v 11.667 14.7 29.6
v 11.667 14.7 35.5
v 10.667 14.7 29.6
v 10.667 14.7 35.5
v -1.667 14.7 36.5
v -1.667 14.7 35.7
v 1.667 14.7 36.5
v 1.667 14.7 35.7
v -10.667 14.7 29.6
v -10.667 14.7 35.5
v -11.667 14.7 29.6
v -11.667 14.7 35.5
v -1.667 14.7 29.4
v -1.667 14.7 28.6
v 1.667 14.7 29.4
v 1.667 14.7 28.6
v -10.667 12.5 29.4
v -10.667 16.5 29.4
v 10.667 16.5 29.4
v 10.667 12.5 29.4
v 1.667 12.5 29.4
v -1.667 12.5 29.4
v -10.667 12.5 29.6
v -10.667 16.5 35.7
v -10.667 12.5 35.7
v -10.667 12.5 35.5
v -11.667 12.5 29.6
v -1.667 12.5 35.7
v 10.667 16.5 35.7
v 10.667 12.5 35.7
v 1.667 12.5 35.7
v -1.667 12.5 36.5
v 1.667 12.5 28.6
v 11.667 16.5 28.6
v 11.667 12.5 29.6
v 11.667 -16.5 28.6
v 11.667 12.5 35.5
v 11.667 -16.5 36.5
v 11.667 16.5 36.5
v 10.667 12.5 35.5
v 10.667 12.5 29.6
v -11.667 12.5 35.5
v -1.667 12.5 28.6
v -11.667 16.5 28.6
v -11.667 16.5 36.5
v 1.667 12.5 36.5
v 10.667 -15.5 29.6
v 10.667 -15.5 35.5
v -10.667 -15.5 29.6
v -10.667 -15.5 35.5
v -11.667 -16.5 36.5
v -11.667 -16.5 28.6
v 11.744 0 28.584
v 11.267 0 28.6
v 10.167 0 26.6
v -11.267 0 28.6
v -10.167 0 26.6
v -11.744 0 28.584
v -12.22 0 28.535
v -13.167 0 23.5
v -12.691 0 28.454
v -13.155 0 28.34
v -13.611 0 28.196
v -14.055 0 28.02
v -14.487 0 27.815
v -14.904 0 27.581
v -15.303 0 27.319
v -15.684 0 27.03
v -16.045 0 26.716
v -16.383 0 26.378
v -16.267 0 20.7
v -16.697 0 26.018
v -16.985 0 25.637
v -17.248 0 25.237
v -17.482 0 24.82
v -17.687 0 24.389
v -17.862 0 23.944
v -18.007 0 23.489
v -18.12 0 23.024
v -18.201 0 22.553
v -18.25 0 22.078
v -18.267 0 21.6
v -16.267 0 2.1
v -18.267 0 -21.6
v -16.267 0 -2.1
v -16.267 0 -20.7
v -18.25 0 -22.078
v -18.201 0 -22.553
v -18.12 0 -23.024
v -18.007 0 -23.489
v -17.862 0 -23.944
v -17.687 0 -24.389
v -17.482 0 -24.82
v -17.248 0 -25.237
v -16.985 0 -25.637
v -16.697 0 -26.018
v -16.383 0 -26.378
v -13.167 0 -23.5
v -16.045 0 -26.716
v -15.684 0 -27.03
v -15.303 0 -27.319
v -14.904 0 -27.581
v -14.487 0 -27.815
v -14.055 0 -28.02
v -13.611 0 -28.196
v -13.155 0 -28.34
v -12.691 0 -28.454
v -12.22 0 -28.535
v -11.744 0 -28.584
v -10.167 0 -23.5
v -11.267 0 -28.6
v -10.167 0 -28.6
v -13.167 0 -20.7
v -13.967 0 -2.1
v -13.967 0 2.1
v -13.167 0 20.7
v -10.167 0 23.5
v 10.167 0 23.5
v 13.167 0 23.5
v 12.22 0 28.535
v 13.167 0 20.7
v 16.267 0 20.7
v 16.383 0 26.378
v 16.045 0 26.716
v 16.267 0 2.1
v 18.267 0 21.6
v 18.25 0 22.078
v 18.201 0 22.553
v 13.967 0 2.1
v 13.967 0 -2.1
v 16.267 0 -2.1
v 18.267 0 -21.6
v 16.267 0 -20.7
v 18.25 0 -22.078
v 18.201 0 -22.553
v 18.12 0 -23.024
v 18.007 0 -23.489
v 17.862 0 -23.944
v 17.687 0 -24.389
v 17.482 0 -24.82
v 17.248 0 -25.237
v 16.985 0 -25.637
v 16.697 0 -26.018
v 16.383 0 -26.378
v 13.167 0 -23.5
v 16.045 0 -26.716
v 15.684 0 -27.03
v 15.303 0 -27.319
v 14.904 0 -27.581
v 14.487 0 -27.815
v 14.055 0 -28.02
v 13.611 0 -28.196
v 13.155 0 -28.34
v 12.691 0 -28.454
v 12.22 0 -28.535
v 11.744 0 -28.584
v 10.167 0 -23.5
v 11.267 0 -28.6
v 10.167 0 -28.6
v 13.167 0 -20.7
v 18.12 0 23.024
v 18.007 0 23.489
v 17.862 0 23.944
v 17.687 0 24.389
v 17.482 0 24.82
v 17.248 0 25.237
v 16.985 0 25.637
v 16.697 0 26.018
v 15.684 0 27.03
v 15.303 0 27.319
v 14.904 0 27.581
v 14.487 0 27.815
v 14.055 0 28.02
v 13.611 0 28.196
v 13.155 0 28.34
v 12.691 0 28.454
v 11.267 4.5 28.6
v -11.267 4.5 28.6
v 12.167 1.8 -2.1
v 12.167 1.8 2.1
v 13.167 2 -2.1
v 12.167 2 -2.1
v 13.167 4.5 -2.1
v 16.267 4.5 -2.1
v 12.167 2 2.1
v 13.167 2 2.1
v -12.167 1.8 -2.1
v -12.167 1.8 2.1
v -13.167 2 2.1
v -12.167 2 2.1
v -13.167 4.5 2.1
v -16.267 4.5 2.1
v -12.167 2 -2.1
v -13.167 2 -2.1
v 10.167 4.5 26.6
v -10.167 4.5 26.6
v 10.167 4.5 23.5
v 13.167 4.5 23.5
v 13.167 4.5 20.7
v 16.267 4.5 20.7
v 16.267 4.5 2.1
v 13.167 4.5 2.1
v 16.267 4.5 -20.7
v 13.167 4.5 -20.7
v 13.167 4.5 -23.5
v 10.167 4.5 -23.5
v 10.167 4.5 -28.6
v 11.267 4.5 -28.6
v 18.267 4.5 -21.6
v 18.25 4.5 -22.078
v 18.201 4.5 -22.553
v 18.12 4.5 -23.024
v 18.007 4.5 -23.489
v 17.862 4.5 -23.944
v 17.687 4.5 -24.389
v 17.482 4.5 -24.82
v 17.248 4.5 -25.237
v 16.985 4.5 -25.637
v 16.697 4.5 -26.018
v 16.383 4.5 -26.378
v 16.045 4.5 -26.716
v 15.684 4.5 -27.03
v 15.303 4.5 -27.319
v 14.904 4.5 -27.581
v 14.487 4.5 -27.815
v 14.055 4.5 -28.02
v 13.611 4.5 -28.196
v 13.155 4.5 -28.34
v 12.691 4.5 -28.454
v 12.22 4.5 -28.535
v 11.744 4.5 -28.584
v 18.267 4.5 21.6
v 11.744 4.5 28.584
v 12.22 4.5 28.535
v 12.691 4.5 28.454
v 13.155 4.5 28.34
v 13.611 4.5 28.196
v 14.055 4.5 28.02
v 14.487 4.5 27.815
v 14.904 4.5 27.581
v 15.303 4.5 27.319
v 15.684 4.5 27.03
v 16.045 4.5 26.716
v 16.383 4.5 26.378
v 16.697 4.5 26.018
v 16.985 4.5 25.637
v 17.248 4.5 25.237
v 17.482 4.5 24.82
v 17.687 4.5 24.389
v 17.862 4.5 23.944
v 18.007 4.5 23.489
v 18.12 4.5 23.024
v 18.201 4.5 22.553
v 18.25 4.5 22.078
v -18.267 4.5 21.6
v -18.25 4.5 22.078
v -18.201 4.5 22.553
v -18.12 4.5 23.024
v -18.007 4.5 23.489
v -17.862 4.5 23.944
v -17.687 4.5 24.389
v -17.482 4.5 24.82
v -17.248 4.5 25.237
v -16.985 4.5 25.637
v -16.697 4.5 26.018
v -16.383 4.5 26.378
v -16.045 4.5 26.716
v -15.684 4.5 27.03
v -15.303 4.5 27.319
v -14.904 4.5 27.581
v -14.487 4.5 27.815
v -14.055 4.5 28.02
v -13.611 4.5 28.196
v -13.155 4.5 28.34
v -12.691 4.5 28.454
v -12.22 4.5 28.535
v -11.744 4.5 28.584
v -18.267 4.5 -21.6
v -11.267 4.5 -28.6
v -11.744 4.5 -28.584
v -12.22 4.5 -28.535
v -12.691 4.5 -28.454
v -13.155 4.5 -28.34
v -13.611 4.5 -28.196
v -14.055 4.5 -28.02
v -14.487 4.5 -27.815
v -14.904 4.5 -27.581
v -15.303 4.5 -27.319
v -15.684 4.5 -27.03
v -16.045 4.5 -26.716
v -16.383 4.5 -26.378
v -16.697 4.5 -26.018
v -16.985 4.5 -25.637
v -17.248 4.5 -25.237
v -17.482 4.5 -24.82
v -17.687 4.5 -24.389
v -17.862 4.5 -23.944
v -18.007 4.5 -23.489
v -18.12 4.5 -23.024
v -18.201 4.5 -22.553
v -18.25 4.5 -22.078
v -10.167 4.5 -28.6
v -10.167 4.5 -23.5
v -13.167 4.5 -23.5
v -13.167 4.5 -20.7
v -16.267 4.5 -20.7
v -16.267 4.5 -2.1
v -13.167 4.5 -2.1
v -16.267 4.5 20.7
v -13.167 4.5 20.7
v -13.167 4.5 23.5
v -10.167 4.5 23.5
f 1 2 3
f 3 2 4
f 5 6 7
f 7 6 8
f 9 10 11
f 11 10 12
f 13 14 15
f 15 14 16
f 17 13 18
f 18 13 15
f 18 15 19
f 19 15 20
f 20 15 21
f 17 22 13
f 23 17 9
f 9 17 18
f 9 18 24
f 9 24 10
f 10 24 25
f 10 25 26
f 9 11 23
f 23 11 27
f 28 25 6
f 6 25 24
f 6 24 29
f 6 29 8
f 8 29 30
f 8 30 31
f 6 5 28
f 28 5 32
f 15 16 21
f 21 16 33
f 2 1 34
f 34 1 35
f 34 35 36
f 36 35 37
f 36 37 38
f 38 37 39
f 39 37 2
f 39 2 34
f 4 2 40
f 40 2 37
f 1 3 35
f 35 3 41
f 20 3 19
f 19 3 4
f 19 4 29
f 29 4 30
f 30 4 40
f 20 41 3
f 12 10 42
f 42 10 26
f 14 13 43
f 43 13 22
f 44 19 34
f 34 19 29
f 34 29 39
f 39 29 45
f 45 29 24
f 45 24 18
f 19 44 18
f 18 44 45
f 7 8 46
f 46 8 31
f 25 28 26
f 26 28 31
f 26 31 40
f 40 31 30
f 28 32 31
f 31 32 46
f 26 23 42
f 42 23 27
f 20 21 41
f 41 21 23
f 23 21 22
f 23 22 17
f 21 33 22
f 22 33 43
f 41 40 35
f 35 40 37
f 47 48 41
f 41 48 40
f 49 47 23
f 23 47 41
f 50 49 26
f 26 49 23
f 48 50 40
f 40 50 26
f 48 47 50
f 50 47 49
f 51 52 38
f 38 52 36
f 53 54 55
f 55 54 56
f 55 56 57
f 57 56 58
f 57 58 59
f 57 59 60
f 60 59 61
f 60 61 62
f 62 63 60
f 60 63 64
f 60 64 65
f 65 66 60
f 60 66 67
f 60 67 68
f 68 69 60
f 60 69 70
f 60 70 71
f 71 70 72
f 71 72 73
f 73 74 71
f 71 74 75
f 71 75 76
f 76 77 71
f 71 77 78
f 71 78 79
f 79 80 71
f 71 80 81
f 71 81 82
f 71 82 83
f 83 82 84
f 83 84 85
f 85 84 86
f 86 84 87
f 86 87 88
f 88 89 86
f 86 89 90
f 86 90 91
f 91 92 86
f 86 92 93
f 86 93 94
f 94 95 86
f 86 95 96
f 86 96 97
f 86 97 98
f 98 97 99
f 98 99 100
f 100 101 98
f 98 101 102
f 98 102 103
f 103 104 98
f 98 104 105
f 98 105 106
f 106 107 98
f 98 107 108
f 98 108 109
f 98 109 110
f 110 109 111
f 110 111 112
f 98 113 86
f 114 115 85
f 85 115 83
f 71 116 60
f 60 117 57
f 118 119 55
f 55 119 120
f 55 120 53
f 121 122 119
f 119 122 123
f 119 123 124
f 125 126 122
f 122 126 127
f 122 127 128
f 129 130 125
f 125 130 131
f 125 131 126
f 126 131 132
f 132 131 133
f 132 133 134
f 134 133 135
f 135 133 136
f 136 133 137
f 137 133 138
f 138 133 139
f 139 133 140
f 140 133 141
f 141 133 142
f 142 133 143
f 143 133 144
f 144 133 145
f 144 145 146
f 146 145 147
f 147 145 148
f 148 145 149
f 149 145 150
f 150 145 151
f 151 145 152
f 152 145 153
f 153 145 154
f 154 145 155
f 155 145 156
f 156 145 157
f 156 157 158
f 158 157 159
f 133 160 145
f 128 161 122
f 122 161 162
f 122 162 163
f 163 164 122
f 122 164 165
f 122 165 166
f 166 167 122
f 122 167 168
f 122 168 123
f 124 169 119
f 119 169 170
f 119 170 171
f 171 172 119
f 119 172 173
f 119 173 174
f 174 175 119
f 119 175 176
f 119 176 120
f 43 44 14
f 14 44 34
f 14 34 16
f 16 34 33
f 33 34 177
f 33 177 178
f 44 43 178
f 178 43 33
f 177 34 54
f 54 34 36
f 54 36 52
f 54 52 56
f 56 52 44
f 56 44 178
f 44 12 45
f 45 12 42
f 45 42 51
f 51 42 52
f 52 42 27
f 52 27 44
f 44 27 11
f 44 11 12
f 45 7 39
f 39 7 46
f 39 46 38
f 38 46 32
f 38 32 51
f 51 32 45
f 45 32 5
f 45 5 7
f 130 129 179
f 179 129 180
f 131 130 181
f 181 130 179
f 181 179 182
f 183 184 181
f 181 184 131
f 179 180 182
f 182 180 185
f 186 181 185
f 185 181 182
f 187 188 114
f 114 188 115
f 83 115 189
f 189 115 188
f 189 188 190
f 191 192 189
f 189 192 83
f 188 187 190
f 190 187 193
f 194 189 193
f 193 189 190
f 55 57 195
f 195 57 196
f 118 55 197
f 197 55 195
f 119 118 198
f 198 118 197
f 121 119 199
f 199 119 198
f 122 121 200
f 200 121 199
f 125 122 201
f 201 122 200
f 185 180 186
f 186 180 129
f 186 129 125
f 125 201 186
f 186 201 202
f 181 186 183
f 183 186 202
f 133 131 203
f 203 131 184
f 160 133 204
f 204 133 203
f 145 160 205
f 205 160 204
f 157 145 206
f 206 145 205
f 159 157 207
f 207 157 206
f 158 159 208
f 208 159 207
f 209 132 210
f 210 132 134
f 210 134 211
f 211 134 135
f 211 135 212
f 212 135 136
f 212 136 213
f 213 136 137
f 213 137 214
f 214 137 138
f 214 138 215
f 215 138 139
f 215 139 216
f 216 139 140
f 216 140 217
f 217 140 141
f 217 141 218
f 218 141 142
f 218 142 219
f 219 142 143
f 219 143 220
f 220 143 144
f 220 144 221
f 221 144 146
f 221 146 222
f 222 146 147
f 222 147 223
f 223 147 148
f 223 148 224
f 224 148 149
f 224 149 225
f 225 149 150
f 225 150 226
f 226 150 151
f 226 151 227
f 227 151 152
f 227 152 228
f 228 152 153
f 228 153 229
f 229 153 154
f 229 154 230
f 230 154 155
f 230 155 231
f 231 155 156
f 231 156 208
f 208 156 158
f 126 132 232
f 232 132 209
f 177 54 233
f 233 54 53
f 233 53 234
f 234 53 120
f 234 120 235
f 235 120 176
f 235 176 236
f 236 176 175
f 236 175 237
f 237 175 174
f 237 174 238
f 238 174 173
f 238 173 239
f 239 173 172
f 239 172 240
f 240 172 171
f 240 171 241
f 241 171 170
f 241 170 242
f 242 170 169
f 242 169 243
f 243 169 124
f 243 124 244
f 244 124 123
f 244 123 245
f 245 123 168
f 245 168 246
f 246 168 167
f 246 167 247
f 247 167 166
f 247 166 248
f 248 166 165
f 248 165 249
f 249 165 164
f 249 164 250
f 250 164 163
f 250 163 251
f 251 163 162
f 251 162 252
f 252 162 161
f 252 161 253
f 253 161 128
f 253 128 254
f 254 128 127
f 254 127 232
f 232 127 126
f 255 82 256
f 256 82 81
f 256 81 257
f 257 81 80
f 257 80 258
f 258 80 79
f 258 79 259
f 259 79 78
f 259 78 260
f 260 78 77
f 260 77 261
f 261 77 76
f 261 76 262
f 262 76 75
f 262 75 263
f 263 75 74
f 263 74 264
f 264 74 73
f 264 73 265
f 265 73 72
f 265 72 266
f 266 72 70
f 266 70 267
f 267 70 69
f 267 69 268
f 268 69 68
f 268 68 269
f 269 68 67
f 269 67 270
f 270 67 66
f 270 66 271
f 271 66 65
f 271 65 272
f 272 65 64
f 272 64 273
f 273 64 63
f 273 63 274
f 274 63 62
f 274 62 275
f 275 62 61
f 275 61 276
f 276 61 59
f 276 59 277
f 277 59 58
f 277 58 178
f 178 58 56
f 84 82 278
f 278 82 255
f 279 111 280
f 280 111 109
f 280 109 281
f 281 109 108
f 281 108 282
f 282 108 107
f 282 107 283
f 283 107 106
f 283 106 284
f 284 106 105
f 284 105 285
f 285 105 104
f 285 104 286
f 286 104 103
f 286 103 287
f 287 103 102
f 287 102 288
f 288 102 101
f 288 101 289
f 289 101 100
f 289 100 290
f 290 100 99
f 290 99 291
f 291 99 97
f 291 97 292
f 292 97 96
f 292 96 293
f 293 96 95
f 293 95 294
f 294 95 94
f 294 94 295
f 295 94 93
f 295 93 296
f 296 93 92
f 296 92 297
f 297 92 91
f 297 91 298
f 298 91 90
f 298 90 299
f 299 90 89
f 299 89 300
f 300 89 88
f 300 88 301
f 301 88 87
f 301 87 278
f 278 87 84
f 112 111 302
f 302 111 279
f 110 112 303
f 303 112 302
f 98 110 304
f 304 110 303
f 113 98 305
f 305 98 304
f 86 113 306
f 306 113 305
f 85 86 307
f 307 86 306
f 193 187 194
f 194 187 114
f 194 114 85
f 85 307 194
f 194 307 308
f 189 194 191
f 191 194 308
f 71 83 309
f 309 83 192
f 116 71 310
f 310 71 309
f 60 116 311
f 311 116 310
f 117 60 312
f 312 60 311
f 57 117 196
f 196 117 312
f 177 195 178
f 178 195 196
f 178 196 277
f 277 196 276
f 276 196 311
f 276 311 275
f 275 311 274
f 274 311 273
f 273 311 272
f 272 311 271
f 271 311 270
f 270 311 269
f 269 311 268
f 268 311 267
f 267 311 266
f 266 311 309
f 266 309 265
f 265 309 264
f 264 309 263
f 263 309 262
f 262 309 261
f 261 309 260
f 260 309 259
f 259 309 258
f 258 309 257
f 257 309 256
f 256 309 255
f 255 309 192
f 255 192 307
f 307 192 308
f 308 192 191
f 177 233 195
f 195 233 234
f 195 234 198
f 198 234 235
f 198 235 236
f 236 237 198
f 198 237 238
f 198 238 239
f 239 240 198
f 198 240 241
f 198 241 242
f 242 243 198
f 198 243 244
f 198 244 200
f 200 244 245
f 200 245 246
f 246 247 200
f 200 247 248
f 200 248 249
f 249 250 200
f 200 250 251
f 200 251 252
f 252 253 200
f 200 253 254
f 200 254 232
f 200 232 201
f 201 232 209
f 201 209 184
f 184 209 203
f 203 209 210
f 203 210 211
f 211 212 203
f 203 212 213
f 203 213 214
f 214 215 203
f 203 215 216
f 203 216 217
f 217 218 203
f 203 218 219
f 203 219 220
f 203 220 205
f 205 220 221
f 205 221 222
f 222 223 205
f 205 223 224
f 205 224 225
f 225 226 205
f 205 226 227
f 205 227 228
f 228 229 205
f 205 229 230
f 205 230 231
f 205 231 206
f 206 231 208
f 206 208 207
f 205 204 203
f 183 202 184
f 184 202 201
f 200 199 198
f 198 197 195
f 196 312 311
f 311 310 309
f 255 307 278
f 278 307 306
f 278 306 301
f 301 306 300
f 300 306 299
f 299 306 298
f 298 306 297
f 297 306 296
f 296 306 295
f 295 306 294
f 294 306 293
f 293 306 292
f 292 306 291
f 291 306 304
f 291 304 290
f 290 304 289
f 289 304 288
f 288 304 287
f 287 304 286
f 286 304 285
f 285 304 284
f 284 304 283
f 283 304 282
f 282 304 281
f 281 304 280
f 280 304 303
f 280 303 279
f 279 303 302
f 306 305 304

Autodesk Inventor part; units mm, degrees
ref_plane "YZ Plane" through (0, 0, 0) normal (1, 0, 0) x (0, 1, 0)
ref_plane "XZ Plane" through (0, 0, 0) normal (0, 1, 0) x (-1, 0, 0)
ref_plane "XY Plane" through (0, 0, 0) normal (0, 0, 1) x (1, 0, 0)
sketch "Эскиз1" plane through (0, 0, 0) normal (0, 1, 0) x (-1, 0, 0)
  line L0 (0, 0) -> (9.1667, 0)
  line L1 (0, 0) -> (0, -12.5)
  line L2 (-11.2667, 28.6) -> (11.2667, 28.6)
  line L3 (18.2667, 21.6) -> (18.2667, -21.6)
  line L4 (-18.2667, -21.6) -> (-18.2667, 21.6)
  line L5 (13.1667, -2.1) -> (16.2667, -2.1)
  line L6 (16.2667, -2.1) -> (16.2667, -20.7)
  line L7 (16.2667, -20.7) -> (13.1667, -20.7)
  line L8 (13.1667, 2.1) -> (16.2667, 2.1)
  line L9 (16.2667, 2.1) -> (16.2667, 20.7)
  line L10 (16.2667, 20.7) -> (13.1667, 20.7)
  line L11 (-16.2667, 2.1) -> (-16.2667, 20.7)
  line L12 (-16.2667, 20.7) -> (-13.1667, 20.7)
  line L13 (-13.1667, 2.1) -> (-16.2667, 2.1)
  line L14 (-13.1667, -2.1) -> (-16.2667, -2.1)
  line L15 (-16.2667, -2.1) -> (-16.2667, -20.7)
  line L16 (-16.2667, -20.7) -> (-13.1667, -20.7)
  line L17 (10.1667, -23.5) -> (10.1667, -26.6)
  line L18 (-10.1667, -26.6) -> (-10.1667, -23.5)
  line L19 (10.1667, 23.5) -> (10.1667, 26.6)
  line L20 (10.1667, 26.6) -> (-10.1667, 26.6)
  line L21 (-10.1667, 26.6) -> (-10.1667, 23.5)
  arc A0 (18.2667, 21.6) -> (11.2667, 28.6) centre (11.2667, 21.6) ccw
  arc A1 (-11.2667, 28.6) -> (-18.2667, 21.6) centre (-11.2667, 21.6) ccw
  arc A2 (-18.2667, -21.6) -> (-11.2667, -28.6) centre (-11.2667, -21.6) ccw
  arc A3 (11.2667, -28.6) -> (18.2667, -21.6) centre (11.2667, -21.6) ccw
  line L22 (-10.1667, -26.6) -> (-10.1667, -28.6)
  line L23 (-10.1667, -28.6) -> (-11.2667, -28.6)
  line L24 (10.1667, -26.6) -> (10.1667, -28.6)
  line L25 (10.1667, -28.6) -> (11.2667, -28.6)
  line L26 (-10.1667, 23.5) -> (-13.1667, 23.5)
  line L27 (-13.1667, 23.5) -> (-13.1667, 20.7)
  line L28 (10.1667, 23.5) -> (13.1667, 23.5)
  line L29 (13.1667, 23.5) -> (13.1667, 20.7)
  line L30 (-10.1667, -23.5) -> (-13.1667, -23.5)
  line L31 (-13.1667, -23.5) -> (-13.1667, -20.7)
  line L32 (10.1667, -23.5) -> (13.1667, -23.5)
  line L33 (13.1667, -23.5) -> (13.1667, -20.7)
  line L34 (13.1667, 2.1) -> (13.1667, -2.1)
  line L35 (-13.1667, 2.1) -> (-13.1667, -2.1)
extrude "Выдавливание1" add sketch "Эскиз1" along normal blind 4.5
sketch "Эскиз2" plane through (-13.1667, 0, 2.1) normal (1, 0, 0) x (0, 0, -1)
  line L0 (-18.6, 0) -> (0, 0)
  line L1 (4.2, 0) -> (4.2, 4.5)
  line L2 (0, 0) -> (4.2, 0)
  line L3 (4.2, 0) -> (4.2, 2)
  line L4 (4.2, 2) -> (0, 2)
  line L5 (0, 2) -> (0, 0)
  point P0 (2.1, 0)
  dimension "d19" = 2
extrude "Выдавливание2" add sketch "Эскиз2" along normal blind 1
chamfer "Фаска1" distance 1.8 angle 45 1 edges at (-12.1667, 0, 0)
mirror "Зеркальное отражение1" about plane through (0, 0, 0) normal (1, 0, 0) of "Выдавливание2", "Фаска1"
sketch "Эскиз3" plane through (-11.2667, 0, 28.6) normal (0, 0, 1) x (1, 0, 0)
  line L0 (1.1, 4.5) -> (-1.9, 4.5)
  line L1 (21.4333, 0) -> (24.4333, 0)
  line L2 (-0.4, 4.5) -> (22.9333, 4.5)
  line L3 (22.9333, 4.5) -> (22.9333, 0)
  line L4 (22.9333, 0) -> (-0.4, 0)
  line L5 (-0.4, 0) -> (-0.4, 4.5)
  point P0 (11.2667, 0)
extrude "Выдавливание3" add sketch "Эскиз3" along normal blind 7.9
sketch "Эскиз4" plane through (0, 4.5, 0) normal (0, 1, 0) x (1, 0, 0)
  line L0 (-11.2667, -28.6) -> (-11.6667, -28.6)
  line L1 (11.6667, -36.5) -> (-11.6667, -36.5)
  line L2 (-11.6667, -28.6) -> (11.6667, -28.6)
  line L3 (11.6667, -28.6) -> (11.6667, -36.5)
  line L4 (11.6667, -36.5) -> (-11.6667, -36.5)
  line L5 (-11.6667, -36.5) -> (-11.6667, -28.6)
  point P0 (0, 0)
extrude "Выдавливание4" add sketch "Эскиз4" against normal blind 21
sketch "Эскиз5" plane through (0, 4.5, 0) normal (0, 1, 0) x (1, 0, 0)
  line L0 (-10.6667, -35.5) -> (10.6667, -35.5)
  line L1 (10.6667, -35.5) -> (10.6667, -29.6)
  line L2 (10.6667, -29.6) -> (-10.6667, -29.6)
  line L3 (-10.6667, -29.6) -> (-10.6667, -35.5)
  line L4 (-11.6667, -28.6) -> (-11.6667, -36.5)
  line L5 (11.6667, -28.6) -> (11.6667, -36.5)
  line L6 (11.6667, -36.5) -> (-11.6667, -36.5)
  line L7 (11.2667, -28.6) -> (-11.2667, -28.6)
  point P0 (0, 0)
  dimension "d29" = 1
  dimension "d30" = 1
  dimension "d31" = 1
  dimension "d32" = 1
extrude "Выдавливание5" cut sketch "Эскиз5" against normal blind 20
sketch "Эскиз6" plane through (0, 4.5, 0) normal (0, 1, 0) x (1, 0, 0)
  line L0 (-11.6667, -28.6) -> (-11.6667, -36.5)
  line L1 (11.6667, -28.6) -> (11.2667, -28.6)
  line L2 (-11.6667, -28.6) -> (11.6667, -28.6)
  line L3 (-11.6667, -28.6) -> (-11.6667, -36.5)
  line L4 (11.6667, -36.5) -> (-11.6667, -36.5)
  line L5 (11.6667, -28.6) -> (11.6667, -36.5)
  line L6 (11.6667, -36.5) -> (11.6667, -28.6)
  line L7 (11.6667, -36.5) -> (-11.6667, -36.5)
  line L8 (-10.6667, -29.6) -> (10.6667, -29.6)
  line L9 (10.6667, -29.6) -> (10.6667, -35.5)
  line L10 (-10.6667, -29.6) -> (10.6667, -29.6)
  line L11 (10.6667, -29.6) -> (10.6667, -35.5)
  line L12 (10.6667, -35.5) -> (-10.6667, -35.5)
  line L13 (-10.6667, -35.5) -> (-10.6667, -29.6)
  point P0 (0, 0)
extrude "Выдавливание6" add sketch "Эскиз6" along normal blind 8
sketch "Эскиз7" plane through (0, 12.5, 0) normal (0, 1, 0) x (1, 0, 0)
  line L0 (-11.6667, -36.5) -> (-11.6667, -28.6)
  line L1 (11.6667, -36.5) -> (-11.6667, -36.5)
  line L2 (-11.6667, -28.6) -> (11.6667, -28.6)
  line L3 (11.6667, -28.6) -> (11.6667, -36.5)
  line L4 (11.6667, -36.5) -> (-11.6667, -36.5)
  line L5 (-11.6667, -36.5) -> (-11.6667, -28.6)
  line L6 (10.6667, -29.6) -> (10.6667, -35.5)
  line L7 (-10.6667, -35.5) -> (-10.6667, -29.6)
  line L8 (11.2667, -28.6) -> (-11.2667, -28.6)
  line L9 (-1.6667, -28.6) -> (1.6667, -28.6)
  line L10 (-10.6667, -29.6) -> (-11.6667, -29.6)
  line L11 (-10.6667, -35.5) -> (-11.6667, -35.5)
  line L12 (10.6667, -35.5) -> (11.6667, -35.5)
  line L13 (10.6667, -29.6) -> (11.6667, -29.6)
  line L14 (1.6667, -36.5) -> (-1.6667, -36.5)
  line L15 (-10.6667, -35.5) -> (-10.6667, -29.6)
  line L16 (-10.6667, -29.6) -> (-10.6667, -29.4)
  line L17 (-10.6667, -29.4) -> (10.6667, -29.4)
  line L18 (10.6667, -29.4) -> (10.6667, -29.6)
  line L19 (-10.6667, -35.5) -> (-10.6667, -35.7)
  line L20 (-10.6667, -35.7) -> (10.6667, -35.7)
  line L21 (10.6667, -35.7) -> (10.6667, -35.5)
  line L22 (-1.6667, -28.6) -> (1.6667, -28.6)
  line L23 (1.6667, -28.6) -> (1.6667, -29.4)
  line L24 (1.6667, -29.4) -> (-1.6667, -29.4)
  line L25 (-1.6667, -29.4) -> (-1.6667, -28.6)
  line L26 (-1.6667, -35.7) -> (1.6667, -35.7)
  line L27 (1.6667, -35.7) -> (1.6667, -36.5)
  line L28 (1.6667, -36.5) -> (-1.6667, -36.5)
  line L29 (-1.6667, -36.5) -> (-1.6667, -35.7)
  point P0 (0, 0)
  dimension "d42" = 0.8
  dimension "d43" = 0.8
  dimension "d44" = 10
  dimension "d45" = 10
  dimension "d46" = 10
  dimension "d47" = 10
extrude "Выдавливание7" add sketch "Эскиз7" along normal blind 4 contours L0 L11 L19 L20 L29 L1 | L0 L2 L25 L17 L16 L10 | L27 L20 L21 L12 L3 L1 | L13 L18 L17 L23 L2 L3
sketch "Эскиз8" plane through (0, 16.5, 0) normal (0, 1, 0) x (1, 0, 0)
  line L0 (-11.6667, -28.6) -> (-11.6667, -29.6)
  line L1 (11.6667, -36.5) -> (-11.6667, -36.5)
  line L2 (-11.6667, -28.6) -> (11.6667, -28.6)
  line L3 (11.6667, -28.6) -> (11.6667, -36.5)
  line L4 (11.6667, -36.5) -> (-11.6667, -36.5)
  line L5 (-11.6667, -36.5) -> (-11.6667, -28.6)
  line L6 (-10.6667, -29.4) -> (-1.6667, -29.4)
  line L7 (10.6667, -35.7) -> (1.6667, -35.7)
  line L8 (-10.6667, -29.4) -> (10.6667, -29.4)
  line L9 (10.6667, -29.4) -> (10.6667, -35.7)
  line L10 (10.6667, -35.7) -> (-10.6667, -35.7)
  line L11 (-10.6667, -35.7) -> (-10.6667, -29.4)
  point P0 (0, 0)
extrude "Выдавливание8" add sketch "Эскиз8" against normal blind 1.8
properties part number "Extension"
